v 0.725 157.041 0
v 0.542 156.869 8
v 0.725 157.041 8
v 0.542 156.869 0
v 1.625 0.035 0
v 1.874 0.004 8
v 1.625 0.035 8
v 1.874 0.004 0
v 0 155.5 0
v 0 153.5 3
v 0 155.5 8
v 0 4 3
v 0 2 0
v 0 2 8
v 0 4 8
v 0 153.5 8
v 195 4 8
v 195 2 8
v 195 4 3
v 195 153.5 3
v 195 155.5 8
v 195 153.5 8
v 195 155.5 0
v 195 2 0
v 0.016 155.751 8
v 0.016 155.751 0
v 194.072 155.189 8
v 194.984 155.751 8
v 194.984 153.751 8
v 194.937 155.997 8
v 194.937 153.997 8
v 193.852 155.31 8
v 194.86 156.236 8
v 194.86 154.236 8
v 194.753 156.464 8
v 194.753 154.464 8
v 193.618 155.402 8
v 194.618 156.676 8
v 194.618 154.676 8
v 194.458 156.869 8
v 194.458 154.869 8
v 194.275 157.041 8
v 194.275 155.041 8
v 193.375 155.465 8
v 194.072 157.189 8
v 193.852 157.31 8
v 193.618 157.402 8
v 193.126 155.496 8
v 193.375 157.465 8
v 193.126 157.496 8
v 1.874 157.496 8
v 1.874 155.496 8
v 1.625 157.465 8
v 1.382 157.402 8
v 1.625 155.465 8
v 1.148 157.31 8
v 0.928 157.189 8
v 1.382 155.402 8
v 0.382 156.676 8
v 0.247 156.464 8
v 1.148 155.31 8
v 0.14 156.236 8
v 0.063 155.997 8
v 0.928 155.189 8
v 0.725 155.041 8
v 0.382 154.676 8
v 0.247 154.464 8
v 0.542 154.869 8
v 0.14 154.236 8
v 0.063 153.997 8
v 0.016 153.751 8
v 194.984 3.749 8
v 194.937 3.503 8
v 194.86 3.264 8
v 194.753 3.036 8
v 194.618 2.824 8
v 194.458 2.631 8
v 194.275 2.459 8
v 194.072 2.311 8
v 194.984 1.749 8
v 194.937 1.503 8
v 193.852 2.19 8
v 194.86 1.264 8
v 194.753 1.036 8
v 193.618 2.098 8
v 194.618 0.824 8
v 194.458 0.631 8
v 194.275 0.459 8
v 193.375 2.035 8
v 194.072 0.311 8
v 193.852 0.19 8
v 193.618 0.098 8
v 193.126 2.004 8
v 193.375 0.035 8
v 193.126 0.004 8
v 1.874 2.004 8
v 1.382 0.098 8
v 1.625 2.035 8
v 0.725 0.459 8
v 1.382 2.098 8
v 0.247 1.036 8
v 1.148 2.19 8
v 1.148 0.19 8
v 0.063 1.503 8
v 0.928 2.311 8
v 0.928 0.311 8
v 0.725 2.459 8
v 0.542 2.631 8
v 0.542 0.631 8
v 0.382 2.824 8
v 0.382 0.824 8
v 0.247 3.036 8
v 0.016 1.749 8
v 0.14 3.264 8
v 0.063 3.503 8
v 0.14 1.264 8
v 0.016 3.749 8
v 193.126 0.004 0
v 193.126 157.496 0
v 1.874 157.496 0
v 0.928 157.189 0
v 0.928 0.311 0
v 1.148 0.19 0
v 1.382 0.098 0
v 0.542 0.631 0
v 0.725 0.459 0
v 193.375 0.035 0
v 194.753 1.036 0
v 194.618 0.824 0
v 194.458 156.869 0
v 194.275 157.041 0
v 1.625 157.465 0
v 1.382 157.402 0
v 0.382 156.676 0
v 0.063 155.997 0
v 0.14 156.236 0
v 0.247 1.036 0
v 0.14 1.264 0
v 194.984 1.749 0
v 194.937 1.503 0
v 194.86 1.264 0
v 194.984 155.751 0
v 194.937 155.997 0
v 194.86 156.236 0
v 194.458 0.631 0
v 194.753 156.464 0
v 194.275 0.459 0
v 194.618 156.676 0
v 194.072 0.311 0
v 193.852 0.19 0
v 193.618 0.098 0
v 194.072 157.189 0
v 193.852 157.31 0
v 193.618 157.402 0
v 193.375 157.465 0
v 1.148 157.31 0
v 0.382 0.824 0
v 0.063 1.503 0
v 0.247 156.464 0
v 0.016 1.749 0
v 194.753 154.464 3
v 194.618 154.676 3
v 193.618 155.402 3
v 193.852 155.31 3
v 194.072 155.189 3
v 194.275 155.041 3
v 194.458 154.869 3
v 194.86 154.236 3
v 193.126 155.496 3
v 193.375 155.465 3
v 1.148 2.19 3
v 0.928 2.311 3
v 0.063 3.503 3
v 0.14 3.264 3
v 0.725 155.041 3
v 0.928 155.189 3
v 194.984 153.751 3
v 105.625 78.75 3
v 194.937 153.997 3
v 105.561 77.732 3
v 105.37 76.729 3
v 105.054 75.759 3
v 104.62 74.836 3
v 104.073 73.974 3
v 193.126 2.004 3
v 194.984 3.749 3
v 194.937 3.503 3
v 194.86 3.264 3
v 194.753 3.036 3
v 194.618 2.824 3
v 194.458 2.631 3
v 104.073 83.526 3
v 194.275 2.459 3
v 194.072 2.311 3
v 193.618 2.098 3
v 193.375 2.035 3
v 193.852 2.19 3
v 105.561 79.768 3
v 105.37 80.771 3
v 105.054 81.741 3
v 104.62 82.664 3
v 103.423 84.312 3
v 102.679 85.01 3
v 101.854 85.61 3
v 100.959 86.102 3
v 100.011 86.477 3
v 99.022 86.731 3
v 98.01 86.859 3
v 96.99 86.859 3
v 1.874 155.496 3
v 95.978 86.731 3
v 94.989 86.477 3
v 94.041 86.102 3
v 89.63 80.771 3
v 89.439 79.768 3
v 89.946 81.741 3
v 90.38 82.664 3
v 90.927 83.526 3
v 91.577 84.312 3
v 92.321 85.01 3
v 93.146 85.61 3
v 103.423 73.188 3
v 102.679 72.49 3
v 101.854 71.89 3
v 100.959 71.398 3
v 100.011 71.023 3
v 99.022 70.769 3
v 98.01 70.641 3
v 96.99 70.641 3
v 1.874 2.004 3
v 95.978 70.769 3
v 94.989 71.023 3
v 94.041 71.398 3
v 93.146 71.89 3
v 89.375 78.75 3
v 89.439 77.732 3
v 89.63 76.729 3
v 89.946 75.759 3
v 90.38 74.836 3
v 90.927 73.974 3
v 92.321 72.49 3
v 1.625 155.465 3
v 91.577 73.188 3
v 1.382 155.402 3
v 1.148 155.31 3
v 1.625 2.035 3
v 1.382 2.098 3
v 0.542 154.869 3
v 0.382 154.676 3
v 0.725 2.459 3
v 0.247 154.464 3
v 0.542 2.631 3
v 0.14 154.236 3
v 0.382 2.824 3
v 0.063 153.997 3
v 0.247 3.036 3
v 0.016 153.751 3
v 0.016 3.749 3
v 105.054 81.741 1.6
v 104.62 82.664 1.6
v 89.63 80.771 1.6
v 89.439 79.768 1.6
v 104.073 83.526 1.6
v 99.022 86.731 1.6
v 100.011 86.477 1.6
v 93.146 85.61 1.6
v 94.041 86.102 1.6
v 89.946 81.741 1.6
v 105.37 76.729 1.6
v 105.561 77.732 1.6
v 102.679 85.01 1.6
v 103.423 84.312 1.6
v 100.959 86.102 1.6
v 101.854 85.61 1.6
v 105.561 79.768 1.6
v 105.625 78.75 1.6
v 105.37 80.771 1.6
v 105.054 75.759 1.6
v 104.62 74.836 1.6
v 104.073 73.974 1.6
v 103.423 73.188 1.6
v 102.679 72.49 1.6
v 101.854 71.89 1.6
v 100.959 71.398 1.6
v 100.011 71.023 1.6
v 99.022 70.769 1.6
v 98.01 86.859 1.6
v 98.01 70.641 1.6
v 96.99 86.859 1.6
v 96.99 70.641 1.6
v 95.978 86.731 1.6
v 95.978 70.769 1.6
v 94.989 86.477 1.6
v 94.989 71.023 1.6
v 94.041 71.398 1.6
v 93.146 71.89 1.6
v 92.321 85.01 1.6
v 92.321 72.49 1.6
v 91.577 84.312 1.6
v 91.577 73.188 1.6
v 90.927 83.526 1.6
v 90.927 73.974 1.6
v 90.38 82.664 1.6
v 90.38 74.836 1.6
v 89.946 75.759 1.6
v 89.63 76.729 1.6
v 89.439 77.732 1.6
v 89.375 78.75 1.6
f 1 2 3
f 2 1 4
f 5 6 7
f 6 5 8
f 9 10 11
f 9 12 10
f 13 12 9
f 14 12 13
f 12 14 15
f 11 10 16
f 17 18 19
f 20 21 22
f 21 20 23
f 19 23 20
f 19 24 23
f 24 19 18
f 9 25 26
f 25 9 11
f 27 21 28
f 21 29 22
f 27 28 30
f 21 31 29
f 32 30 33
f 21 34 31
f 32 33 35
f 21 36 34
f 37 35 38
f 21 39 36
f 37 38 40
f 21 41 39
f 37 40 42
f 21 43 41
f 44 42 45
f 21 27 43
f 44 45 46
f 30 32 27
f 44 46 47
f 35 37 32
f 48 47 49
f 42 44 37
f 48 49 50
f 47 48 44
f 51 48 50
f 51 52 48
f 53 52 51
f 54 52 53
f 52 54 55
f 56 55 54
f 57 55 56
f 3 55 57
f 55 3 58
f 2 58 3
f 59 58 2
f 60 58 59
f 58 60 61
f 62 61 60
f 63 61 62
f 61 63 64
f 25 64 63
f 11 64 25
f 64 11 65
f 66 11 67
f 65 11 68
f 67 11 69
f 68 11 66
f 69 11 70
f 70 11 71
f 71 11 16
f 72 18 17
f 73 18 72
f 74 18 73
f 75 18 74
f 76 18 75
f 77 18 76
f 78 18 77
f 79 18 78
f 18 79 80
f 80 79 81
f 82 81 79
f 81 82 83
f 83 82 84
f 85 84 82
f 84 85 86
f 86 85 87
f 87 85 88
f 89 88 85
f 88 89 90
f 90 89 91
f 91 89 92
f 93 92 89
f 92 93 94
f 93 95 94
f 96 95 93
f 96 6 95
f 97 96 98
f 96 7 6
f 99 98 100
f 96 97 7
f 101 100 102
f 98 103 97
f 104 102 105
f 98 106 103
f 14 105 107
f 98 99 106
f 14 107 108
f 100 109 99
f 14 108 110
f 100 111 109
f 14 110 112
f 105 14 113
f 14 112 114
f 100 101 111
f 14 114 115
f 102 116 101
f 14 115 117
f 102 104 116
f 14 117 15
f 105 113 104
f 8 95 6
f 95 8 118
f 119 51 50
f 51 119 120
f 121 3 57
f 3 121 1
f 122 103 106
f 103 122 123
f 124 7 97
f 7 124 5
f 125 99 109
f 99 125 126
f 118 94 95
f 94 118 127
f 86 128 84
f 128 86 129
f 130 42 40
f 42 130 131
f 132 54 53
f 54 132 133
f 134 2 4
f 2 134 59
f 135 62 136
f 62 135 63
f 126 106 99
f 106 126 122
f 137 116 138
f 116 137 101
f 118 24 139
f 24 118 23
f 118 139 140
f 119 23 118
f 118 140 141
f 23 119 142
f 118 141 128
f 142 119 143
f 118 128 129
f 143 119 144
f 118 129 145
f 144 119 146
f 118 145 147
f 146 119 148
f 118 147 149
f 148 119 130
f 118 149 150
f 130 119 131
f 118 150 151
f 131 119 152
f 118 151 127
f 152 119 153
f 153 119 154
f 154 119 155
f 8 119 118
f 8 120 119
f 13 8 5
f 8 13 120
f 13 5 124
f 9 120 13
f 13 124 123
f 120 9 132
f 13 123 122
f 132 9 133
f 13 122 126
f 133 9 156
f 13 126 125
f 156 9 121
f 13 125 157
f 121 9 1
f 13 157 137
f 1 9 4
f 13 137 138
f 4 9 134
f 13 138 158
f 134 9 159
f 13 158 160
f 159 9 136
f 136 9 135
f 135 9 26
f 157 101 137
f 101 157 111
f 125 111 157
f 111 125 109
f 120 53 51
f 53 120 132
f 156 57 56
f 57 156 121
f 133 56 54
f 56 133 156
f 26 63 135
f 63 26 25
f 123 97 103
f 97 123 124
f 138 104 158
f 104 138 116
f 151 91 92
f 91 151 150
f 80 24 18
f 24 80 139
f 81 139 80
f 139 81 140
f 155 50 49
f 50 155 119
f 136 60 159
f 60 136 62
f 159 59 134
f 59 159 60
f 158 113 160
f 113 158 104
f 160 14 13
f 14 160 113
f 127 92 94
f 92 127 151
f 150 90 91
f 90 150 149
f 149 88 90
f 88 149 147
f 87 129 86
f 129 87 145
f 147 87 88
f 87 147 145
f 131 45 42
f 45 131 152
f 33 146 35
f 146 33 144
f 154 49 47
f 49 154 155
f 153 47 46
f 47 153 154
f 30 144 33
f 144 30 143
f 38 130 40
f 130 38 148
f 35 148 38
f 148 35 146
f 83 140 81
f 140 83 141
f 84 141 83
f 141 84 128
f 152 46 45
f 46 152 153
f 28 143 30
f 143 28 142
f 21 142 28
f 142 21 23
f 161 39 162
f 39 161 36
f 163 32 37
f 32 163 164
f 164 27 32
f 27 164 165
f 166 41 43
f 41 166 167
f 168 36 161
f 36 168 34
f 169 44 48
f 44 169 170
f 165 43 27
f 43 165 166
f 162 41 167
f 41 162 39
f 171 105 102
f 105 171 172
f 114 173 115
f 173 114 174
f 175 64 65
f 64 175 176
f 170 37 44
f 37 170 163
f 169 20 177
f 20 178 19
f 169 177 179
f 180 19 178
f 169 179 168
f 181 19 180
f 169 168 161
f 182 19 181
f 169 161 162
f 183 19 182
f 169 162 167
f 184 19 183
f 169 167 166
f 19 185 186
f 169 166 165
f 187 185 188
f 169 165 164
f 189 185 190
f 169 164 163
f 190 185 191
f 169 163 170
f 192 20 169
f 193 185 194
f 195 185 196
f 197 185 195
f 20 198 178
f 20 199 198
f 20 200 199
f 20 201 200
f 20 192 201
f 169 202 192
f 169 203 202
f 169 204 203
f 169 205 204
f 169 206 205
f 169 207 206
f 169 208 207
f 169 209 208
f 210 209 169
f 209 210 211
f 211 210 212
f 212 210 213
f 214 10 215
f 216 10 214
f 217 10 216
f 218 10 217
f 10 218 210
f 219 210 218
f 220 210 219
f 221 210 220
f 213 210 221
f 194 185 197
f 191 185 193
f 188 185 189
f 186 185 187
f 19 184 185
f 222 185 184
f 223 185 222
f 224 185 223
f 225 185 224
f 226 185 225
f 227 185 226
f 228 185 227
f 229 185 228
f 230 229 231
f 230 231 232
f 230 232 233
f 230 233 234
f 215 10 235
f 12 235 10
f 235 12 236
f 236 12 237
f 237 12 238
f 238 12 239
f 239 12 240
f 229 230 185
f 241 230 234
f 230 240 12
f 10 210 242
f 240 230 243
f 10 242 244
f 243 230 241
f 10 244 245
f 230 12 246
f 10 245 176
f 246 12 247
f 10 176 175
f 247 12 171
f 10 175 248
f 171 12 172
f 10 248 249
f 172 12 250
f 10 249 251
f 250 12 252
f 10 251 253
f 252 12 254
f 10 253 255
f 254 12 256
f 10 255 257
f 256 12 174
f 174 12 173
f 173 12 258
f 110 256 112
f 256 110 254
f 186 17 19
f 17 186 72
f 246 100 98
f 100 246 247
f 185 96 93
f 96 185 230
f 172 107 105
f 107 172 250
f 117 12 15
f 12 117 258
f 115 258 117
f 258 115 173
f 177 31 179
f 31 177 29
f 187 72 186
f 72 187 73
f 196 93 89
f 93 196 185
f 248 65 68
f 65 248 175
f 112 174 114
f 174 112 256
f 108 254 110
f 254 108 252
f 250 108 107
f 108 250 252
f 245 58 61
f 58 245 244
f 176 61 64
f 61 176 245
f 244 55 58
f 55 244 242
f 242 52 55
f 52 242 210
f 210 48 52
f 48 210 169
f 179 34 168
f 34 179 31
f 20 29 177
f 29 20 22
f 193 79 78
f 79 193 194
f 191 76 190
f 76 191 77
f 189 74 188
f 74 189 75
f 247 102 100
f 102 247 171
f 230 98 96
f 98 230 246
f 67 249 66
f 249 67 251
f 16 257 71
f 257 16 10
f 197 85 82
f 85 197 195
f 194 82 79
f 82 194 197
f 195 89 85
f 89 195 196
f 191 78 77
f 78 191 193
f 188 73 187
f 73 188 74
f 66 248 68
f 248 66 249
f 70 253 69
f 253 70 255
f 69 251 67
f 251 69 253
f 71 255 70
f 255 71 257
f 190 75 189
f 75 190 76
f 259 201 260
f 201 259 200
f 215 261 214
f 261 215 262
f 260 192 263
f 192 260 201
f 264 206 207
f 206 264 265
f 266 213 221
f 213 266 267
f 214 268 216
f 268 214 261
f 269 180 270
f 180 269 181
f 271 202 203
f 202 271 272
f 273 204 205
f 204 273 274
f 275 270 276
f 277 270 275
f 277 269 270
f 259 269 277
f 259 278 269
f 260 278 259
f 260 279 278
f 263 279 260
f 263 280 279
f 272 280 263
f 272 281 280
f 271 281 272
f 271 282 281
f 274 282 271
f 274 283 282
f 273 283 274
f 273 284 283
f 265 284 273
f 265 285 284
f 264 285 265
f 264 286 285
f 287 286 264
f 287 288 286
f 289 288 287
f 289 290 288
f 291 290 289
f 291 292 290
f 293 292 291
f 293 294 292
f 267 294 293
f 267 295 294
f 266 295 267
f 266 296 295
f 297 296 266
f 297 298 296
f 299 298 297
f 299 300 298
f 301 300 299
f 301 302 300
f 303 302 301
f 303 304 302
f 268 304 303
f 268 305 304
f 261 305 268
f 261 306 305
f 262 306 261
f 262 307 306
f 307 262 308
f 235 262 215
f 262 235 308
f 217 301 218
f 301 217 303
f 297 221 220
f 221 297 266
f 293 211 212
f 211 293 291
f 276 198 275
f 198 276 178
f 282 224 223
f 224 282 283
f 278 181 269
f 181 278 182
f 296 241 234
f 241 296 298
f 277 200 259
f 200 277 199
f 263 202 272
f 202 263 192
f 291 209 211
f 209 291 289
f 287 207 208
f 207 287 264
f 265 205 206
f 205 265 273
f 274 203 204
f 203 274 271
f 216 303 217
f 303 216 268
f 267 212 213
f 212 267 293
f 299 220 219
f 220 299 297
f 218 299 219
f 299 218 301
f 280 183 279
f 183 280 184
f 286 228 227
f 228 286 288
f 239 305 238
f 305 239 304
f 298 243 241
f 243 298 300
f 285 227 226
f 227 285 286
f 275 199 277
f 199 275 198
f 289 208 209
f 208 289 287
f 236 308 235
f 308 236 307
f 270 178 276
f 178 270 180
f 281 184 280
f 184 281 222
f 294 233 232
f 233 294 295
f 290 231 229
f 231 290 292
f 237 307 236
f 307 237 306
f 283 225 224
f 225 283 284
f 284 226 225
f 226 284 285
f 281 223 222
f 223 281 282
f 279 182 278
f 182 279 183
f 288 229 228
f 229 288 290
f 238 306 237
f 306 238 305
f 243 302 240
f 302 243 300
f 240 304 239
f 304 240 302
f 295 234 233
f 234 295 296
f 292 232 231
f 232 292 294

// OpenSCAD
lipThickness = 2;
width = 152;
length = 195;
height = 3;
rimHeight = 5;
rimThickness = 2;
notchLength = 0;
//Based on washer size:
washerDiameter = 16.25;
washerHeight = 1.4;
rimPadding = 1.5;
totalHeight = height + rimHeight;

totalLength = length;
echo(totalLength);
totalWidth = width + rimThickness * 2 + rimPadding;
difference() {

//////////////////////
//Old minkowski
//////////////////////
//    $fn=50;
//    minkowski()
//    {
//      cube([totalLength, totalWidth, height + rimHeight - 1]);
//      cylinder(r=2,h=1);
//    }
//    
//    translate([rimThickness, rimThickness, height])
//        minkowski()
//        {
//          cube([length + rimPadding, width + rimPadding, rimHeight - 1]);
//          cylinder(r=2,h=1);
//        }

//////////////////////////
////Good minkowski
//////////////////////////
    $fn=50;
    minkowski()
    {
      translate([2,2,0])
        cube([totalLength-4, totalWidth-4, height + rimHeight - 1]);
      cylinder(r=2,h=1);
    }
    
    translate([0, rimThickness, height])
        minkowski()
        {
          translate([2,2,0])
            cube([length -4, width + rimPadding-4, rimHeight - 1]);
          cylinder(r=2,h=1);
        }

////////////////////////
//No minkowski
////////////////////////        
//    cube([totalLength, totalWidth, height + rimHeight]);
//    
//    translate([rimThickness, rimThickness, height])
//        cube([length + rimPadding, width + rimPadding, rimHeight]);
    
        
    translate([totalLength/2 - notchLength/2, -2, 0])
        cube([notchLength, rimThickness + .01, totalHeight]);
    translate([totalLength/2 - notchLength/2, totalWidth-rimThickness + 1.99, 0])
        cube([notchLength, rimThickness + .01, totalHeight]);


    translate([-2, totalWidth/2 - notchLength/2, 0])
        cube([rimThickness + .01, notchLength, totalHeight]);
    translate([totalLength-rimThickness + 1.99, totalWidth/2 - notchLength/2, 0])
        cube([rimThickness + .01, notchLength, totalHeight]);
    
    translate([totalLength/2, totalWidth/2, height - washerHeight])
        cylinder(washerHeight, d=washerDiameter);
}
